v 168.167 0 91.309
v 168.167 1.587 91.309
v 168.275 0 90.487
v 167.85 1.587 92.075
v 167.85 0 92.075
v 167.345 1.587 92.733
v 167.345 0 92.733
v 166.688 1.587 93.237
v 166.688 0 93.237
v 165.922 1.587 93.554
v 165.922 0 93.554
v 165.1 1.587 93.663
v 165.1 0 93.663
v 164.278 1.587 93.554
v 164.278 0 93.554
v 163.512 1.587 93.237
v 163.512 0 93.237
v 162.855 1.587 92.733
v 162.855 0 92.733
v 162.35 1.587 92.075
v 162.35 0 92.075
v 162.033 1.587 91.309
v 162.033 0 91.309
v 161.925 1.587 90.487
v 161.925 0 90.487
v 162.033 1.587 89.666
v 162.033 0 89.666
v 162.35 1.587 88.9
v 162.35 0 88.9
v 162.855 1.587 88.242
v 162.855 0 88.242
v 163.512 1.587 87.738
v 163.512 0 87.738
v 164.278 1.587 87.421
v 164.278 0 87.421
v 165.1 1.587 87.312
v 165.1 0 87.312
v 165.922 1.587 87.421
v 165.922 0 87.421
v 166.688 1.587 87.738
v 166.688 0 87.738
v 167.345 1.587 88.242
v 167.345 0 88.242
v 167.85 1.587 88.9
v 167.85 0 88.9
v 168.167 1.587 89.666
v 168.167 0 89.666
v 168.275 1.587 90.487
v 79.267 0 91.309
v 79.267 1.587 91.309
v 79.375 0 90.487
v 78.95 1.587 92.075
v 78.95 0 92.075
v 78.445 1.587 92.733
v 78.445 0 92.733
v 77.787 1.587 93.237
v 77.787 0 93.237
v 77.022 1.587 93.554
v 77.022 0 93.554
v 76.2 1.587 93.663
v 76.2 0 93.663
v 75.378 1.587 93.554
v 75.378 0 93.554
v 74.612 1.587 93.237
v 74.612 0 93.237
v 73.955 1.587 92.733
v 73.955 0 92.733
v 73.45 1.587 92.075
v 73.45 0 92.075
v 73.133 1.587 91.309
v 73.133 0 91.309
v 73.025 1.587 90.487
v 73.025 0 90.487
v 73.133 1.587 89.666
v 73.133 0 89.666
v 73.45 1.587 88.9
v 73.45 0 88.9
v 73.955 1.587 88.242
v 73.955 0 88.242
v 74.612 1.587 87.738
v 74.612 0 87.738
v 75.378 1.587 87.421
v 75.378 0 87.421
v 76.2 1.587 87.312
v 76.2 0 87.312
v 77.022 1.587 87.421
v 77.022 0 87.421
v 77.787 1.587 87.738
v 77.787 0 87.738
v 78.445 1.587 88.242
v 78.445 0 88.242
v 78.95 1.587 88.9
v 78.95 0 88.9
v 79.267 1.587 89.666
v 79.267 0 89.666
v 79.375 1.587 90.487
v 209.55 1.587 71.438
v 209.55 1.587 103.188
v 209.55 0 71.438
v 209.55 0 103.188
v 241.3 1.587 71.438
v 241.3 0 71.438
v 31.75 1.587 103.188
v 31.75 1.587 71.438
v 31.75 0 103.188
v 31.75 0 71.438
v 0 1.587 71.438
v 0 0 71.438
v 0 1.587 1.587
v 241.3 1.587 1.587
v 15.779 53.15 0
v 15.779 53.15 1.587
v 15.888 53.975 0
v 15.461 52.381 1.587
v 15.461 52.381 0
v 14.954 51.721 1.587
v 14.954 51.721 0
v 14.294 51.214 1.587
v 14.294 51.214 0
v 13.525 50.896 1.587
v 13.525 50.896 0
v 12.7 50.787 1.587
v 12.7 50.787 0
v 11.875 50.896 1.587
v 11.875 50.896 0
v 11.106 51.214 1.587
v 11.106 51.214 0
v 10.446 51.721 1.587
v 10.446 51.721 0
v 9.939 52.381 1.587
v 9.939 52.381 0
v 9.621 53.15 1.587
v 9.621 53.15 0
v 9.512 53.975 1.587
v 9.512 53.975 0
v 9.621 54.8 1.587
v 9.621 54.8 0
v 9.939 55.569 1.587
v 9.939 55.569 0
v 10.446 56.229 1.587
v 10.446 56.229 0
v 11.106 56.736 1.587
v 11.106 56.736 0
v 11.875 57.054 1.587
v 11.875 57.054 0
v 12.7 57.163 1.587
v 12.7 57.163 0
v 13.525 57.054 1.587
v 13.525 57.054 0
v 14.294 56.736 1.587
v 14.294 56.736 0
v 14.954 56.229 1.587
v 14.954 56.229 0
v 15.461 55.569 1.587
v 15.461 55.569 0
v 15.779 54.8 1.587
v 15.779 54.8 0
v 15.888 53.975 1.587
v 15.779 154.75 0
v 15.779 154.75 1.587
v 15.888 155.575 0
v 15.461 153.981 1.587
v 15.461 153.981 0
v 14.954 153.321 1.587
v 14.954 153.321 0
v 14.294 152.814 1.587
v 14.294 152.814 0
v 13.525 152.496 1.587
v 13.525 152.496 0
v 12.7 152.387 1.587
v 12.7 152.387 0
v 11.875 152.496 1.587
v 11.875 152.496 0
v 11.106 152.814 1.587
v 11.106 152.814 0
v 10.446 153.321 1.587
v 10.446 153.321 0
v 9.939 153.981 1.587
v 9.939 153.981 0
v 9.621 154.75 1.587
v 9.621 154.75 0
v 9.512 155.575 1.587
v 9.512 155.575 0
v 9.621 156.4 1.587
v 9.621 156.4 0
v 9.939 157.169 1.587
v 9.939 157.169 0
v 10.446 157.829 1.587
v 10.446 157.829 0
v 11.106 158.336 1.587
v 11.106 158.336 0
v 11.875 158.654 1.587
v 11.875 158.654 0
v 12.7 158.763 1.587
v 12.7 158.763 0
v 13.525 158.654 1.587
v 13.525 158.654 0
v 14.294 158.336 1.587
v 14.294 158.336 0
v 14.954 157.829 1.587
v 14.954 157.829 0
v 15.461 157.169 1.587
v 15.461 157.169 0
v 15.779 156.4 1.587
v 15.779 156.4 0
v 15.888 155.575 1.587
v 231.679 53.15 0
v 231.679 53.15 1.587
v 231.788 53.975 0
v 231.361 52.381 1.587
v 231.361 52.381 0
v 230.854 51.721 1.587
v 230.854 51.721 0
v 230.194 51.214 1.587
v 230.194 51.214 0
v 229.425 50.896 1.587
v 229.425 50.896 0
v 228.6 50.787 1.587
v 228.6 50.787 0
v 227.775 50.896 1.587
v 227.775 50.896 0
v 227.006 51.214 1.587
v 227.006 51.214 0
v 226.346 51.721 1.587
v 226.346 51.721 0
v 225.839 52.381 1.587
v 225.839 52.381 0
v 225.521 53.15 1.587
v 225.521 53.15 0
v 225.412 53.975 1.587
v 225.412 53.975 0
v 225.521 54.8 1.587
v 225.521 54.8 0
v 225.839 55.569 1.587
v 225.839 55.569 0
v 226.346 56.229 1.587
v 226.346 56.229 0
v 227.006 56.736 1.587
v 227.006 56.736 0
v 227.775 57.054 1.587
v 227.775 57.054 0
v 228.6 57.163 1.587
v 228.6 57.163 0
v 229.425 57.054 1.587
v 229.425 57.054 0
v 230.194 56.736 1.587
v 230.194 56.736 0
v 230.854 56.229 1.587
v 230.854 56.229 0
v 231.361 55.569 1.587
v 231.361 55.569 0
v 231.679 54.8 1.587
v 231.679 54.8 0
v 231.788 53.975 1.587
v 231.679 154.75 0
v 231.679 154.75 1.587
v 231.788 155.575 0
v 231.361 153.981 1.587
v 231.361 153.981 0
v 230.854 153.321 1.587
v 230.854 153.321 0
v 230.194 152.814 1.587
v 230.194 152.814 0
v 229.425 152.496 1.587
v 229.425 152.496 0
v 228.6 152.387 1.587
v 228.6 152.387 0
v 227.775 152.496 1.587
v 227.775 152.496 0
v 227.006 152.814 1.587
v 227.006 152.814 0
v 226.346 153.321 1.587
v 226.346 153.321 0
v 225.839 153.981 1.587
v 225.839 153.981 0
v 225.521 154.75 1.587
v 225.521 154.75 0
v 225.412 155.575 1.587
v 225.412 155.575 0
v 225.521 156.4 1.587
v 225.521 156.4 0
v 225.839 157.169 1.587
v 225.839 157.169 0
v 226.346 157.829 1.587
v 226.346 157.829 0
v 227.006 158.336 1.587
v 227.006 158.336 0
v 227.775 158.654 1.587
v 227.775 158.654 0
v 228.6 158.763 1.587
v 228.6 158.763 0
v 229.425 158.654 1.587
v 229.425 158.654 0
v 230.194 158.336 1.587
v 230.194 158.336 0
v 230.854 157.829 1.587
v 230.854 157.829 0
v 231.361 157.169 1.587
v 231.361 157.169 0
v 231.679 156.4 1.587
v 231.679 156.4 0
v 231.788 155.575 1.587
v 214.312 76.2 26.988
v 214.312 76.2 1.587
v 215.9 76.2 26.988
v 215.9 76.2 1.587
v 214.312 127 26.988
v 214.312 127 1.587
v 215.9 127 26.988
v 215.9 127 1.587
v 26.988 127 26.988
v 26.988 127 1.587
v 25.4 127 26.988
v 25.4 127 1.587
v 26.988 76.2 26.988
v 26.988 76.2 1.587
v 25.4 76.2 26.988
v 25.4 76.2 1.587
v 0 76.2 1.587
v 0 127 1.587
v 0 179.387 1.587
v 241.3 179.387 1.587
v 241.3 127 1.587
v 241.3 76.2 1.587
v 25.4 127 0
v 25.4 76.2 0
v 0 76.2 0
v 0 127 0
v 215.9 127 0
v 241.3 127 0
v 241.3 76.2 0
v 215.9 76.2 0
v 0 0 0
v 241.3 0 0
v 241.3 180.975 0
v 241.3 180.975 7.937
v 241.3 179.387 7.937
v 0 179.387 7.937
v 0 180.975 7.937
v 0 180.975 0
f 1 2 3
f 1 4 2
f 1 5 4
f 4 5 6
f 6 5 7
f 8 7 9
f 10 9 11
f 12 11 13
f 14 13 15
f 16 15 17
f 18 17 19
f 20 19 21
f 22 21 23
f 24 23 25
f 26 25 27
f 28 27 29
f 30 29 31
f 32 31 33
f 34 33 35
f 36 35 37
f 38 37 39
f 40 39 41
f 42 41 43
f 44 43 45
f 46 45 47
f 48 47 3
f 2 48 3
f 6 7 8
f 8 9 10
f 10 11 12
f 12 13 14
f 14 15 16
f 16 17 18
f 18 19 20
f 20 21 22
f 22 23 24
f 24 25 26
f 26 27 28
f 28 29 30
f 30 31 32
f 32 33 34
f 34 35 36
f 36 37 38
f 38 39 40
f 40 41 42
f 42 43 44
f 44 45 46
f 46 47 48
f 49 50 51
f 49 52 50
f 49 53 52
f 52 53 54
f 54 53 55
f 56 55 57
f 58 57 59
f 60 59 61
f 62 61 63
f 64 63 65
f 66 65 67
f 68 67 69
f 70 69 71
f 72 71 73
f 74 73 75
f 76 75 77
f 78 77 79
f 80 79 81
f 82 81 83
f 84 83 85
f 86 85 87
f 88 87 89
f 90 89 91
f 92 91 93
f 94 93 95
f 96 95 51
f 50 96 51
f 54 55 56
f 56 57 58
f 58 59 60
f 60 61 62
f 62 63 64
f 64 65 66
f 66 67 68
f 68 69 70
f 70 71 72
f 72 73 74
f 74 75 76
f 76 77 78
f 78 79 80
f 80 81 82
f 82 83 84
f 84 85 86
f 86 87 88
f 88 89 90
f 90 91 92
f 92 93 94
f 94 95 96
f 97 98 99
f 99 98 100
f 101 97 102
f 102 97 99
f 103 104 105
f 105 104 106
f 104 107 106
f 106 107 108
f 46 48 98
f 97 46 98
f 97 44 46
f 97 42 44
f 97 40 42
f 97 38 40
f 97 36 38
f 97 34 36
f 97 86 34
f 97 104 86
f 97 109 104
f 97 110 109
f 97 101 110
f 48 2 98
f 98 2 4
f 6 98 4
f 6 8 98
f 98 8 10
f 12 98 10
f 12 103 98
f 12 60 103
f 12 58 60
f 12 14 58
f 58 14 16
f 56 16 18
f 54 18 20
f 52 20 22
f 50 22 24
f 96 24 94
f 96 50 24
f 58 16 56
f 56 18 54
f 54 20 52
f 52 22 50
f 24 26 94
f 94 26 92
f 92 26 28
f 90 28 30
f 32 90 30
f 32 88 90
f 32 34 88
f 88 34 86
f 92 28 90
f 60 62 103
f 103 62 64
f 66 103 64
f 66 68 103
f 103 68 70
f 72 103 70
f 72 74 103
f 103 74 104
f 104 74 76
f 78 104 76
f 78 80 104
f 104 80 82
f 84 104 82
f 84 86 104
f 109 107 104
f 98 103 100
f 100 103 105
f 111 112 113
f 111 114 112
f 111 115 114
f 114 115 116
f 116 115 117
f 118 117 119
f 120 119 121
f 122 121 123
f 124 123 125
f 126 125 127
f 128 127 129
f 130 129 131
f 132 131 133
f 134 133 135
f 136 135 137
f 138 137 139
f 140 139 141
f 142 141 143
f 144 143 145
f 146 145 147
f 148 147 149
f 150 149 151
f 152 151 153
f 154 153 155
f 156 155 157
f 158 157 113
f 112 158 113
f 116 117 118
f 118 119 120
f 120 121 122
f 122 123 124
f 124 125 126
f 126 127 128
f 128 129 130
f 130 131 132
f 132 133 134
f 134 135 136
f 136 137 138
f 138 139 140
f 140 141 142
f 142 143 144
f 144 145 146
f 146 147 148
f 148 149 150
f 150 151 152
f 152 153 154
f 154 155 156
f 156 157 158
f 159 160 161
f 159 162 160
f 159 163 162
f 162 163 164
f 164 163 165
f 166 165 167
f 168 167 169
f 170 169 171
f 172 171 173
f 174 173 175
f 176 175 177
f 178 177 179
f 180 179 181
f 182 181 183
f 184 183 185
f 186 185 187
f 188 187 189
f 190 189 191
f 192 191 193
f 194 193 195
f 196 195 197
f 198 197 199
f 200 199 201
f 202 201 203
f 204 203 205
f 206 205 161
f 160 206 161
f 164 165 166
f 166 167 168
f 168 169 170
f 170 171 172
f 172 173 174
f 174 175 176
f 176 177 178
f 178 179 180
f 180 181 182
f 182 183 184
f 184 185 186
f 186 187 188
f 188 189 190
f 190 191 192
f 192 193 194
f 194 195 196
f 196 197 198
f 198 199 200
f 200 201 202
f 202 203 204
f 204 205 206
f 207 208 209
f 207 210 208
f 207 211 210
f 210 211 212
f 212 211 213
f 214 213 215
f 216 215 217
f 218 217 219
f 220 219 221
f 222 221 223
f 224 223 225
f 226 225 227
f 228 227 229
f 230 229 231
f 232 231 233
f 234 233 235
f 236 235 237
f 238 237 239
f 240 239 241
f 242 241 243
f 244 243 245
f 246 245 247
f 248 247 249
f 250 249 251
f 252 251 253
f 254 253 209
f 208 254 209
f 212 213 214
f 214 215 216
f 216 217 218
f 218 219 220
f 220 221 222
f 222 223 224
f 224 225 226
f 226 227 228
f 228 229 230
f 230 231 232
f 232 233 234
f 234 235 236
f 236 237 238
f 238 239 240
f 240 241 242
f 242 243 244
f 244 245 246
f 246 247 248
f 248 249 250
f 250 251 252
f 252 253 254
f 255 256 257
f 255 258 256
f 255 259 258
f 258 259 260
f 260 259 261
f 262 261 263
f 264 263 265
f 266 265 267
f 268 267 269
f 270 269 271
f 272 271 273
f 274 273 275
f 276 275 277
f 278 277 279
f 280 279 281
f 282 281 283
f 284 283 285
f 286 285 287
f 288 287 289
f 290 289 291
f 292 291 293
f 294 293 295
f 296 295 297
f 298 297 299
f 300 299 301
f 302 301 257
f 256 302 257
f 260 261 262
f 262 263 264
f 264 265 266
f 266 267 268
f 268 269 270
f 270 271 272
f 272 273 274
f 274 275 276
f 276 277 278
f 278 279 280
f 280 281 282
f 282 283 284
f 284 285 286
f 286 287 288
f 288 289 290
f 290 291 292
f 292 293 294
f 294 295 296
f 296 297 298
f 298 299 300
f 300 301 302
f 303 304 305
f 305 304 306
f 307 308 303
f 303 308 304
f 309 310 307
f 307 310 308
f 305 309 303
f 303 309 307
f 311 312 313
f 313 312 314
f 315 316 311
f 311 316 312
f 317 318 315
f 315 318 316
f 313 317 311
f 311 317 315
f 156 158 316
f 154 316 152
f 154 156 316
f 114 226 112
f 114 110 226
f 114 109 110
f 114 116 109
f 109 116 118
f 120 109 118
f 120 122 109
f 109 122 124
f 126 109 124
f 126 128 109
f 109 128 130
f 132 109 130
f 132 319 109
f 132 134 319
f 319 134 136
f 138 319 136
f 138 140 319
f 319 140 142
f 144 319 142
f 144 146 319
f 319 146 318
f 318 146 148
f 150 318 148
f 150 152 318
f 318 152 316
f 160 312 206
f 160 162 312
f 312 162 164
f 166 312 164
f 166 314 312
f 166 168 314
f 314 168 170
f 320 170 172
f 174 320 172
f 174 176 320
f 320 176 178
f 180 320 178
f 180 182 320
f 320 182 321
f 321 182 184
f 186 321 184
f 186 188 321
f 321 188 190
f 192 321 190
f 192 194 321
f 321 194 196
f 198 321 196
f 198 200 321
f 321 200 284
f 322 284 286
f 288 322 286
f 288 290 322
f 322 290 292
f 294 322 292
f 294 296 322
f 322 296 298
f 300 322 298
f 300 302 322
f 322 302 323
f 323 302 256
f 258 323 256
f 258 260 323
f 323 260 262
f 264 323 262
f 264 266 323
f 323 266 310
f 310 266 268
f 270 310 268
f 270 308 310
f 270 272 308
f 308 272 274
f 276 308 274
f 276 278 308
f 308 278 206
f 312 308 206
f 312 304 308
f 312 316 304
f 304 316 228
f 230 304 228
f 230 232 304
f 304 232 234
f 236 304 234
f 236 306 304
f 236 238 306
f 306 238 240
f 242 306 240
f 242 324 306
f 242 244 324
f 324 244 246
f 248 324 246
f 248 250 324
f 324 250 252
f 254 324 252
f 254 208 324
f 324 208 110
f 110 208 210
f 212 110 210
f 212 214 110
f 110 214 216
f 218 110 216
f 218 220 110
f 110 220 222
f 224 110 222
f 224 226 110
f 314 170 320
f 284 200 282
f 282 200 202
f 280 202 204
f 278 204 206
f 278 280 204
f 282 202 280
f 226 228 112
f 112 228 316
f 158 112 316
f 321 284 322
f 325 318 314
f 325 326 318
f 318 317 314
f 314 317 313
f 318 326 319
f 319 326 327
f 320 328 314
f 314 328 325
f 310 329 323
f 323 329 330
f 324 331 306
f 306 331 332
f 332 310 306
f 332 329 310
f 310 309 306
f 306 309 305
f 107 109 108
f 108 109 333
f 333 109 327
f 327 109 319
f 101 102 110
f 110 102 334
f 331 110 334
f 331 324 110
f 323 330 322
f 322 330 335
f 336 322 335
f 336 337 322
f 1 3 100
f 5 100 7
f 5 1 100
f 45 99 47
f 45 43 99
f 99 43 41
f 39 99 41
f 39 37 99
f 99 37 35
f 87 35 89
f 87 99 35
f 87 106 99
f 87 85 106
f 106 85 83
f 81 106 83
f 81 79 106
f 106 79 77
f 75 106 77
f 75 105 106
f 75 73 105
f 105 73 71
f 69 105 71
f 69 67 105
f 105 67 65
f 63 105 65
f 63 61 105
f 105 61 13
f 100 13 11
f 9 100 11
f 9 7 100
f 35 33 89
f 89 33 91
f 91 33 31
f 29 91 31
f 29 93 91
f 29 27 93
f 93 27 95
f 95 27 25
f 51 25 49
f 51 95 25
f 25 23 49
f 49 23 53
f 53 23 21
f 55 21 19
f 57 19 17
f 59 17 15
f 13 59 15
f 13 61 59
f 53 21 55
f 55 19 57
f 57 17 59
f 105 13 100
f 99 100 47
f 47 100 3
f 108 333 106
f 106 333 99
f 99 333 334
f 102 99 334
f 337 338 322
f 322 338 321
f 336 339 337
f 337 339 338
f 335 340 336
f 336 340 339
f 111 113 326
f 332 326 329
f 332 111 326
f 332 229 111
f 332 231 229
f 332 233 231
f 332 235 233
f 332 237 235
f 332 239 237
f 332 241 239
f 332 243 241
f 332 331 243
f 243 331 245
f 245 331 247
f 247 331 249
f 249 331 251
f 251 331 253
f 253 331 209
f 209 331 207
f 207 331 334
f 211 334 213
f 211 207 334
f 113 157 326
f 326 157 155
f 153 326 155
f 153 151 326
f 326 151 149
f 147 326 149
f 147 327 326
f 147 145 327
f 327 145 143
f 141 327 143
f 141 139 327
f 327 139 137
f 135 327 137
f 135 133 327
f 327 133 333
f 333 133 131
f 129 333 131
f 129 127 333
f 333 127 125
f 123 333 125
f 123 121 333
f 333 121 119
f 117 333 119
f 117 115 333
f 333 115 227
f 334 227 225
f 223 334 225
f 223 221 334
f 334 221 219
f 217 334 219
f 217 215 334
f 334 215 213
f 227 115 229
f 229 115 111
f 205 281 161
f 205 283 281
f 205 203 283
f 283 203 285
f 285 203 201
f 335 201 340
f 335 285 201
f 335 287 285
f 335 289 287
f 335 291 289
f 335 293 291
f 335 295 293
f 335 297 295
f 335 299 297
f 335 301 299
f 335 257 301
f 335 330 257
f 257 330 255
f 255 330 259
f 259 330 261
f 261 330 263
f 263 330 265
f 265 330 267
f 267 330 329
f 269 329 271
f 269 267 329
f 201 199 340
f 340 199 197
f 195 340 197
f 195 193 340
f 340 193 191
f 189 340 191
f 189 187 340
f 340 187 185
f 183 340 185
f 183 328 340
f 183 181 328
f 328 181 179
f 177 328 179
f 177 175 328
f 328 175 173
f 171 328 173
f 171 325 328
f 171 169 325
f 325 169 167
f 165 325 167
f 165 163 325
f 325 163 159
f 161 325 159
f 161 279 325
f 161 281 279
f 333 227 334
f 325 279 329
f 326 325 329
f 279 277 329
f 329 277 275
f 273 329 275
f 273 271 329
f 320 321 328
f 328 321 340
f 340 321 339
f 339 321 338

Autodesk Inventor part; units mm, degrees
ref_plane "YZ Plane" through (0, 0, 0) normal (1, 0, 0) x (0, 1, 0)
ref_plane "XZ Plane" through (0, 0, 0) normal (0, 1, 0) x (-1, 0, 0)
ref_plane "XY Plane" through (0, 0, 0) normal (0, 0, 1) x (1, 0, 0)
sketch "Sketch1" plane through (0, 0, 0) normal (1, 0, 0) x (0, 1, 0)
  line L0 (1.5875, 103.1875) -> (1.5875, 1.5875)
  line L1 (1.5875, 1.5875) -> (179.3875, 1.5875)
  line L2 (179.3875, 1.5875) -> (179.3875, 7.9375)
  line L3 (179.3875, 7.9375) -> (180.975, 7.9375)
  line L4 (180.975, 7.9375) -> (180.975, 0)
  line L5 (180.975, 0) -> (0, 0)
  line L6 (0, 0) -> (0, 103.1875)
  line L7 (0, 103.1875) -> (1.5875, 103.1875)
  dimension "d0" = 1.5875
  dimension "d1" = 1.5875
  dimension "d2" = 180.975
  dimension "d3" = 101.6
  dimension "d4" = 6.35
extrude "Extrusion1" add sketch "Sketch1" along normal blind 241.3
sketch "Sketch2" plane through (0, 0, 0) normal (0, 0, -1) x (-1, 0, 0)
  line L0 (-241.3, 180.975) -> (-241.3, 0) projected
  line L1 (0, 0) -> (-241.3, 0) projected
  line L2 (0, 0) -> (0, 180.975) projected
  line L3 (-241.3, 127) -> (-215.9, 127)
  line L4 (-215.9, 127) -> (-215.9, 76.2)
  line L5 (-215.9, 76.2) -> (-241.3, 76.2)
  line L6 (-241.3, 76.2) -> (-241.3, 127)
  line L7 (0, 127) -> (-25.4, 127)
  line L8 (-25.4, 127) -> (-25.4, 76.2)
  line L9 (-25.4, 76.2) -> (0, 76.2)
  line L10 (0, 76.2) -> (0, 127)
  dimension "d7" = 25.4
  dimension "d8" = 50.8
  dimension "d9" = 76.2
extrude "Extrusion2" cut sketch "Sketch2" against normal up to next
sketch "Sketch3" plane through (0, 1.5875, 1.5875) normal (0, 0, 1) x (1, 0, 0)
  line L0 (0, 125.4125) -> (25.4, 125.4125) projected
  line L1 (241.3, 74.6125) -> (215.9, 74.6125) projected
  line L2 (215.9, 125.4125) -> (214.3125, 125.4125)
  line L3 (214.3125, 125.4125) -> (214.3125, 74.6125)
  line L4 (214.3125, 74.6125) -> (215.9, 74.6125)
  line L5 (215.9, 74.6125) -> (215.9, 125.4125)
  line L6 (25.4, 74.6125) -> (26.9875, 74.6125)
  line L7 (26.9875, 74.6125) -> (26.9875, 125.4125)
  line L8 (26.9875, 125.4125) -> (25.4, 125.4125)
  line L9 (25.4, 125.4125) -> (25.4, 74.6125)
  point P0 (0, -1.5875)
  dimension "d12" = 1.5875
extrude "Extrusion3" add sketch "Sketch3" along normal blind 25.4
sketch "Sketch4" plane through (0, 179.3875, 1.5875) normal (0, 0, 1) x (1, 0, 0)
  line L0 (0, 0) -> (0, -52.3875) projected
  line L1 (241.3, -177.8) -> (241.3, -103.1875) projected
  circle A0 centre (228.6, -23.8125) radius 3.1877
  circle A1 centre (228.6, -125.4125) radius 3.1877
  circle A2 centre (12.7, -23.8125) radius 3.1877
  circle A3 centre (12.7, -125.4125) radius 3.1877
  line L2 (12.7, -23.8125) -> (228.6, -23.8125) construction
  line L3 (228.6, -23.8125) -> (228.6, -125.4125) construction
  line L4 (228.6, -125.4125) -> (12.7, -125.4125) construction
  line L5 (12.7, -125.4125) -> (12.7, -23.8125) construction
  line L6 (0, -179.3875) -> (241.3, -179.3875) construction
  line L7 (0, 1.5875) -> (241.3, 1.5875) construction
  dimension "d15" = 6.3754
  dimension "d16" = 12.7
  dimension "d18" = 25.4
  dimension "d19" = 101.6
  dimension "d20" = 12.7
extrude "Extrusion4" cut sketch "Sketch4" against normal through all
sketch "Sketch5" plane through (0, 0, 0) normal (0, -1, 0) x (1, 0, 0)
  line L0 (0, 103.1875) -> (31.75, 103.1875)
  line L1 (31.75, 103.1875) -> (31.75, 71.4375)
  line L2 (31.75, 71.4375) -> (0, 71.4375)
  line L3 (0, 71.4375) -> (0, 103.1875)
  line L4 (241.3, 103.1875) -> (209.55, 103.1875)
  line L5 (209.55, 103.1875) -> (209.55, 71.4375)
  line L6 (209.55, 71.4375) -> (241.3, 71.4375)
  line L7 (241.3, 71.4375) -> (241.3, 103.1875)
  dimension "d23" = 31.75
extrude "Extrusion5" cut sketch "Sketch5" against normal up to next
sketch "Sketch6" plane through (0, 1.5875, 1.5875) normal (0, 1, 0) x (1, 0, 0)
  line L0 (209.55, -101.6) -> (209.55, -69.85) projected
  line L1 (31.75, -69.85) -> (31.75, -101.6) projected
  line L2 (31.75, -101.6) -> (209.55, -101.6) projected
  circle A0 centre (76.2, -88.9) radius 3.175
  circle A1 centre (165.1, -88.9) radius 3.175
  line L3 (165.1, -88.9) -> (209.55, -88.9) construction
  line L4 (76.2, -88.9) -> (31.75, -88.9) construction
  point P0 (0, 1.5875)
  dimension "d26" = 12.7
  dimension "d27" = 12.7
  dimension "d28" = 88.9
  dimension "d29" = 6.35
extrude "Extrusion6" cut sketch "Sketch6" against normal up to next
properties part number "BatteryMount" material "Aluminum-6061"
